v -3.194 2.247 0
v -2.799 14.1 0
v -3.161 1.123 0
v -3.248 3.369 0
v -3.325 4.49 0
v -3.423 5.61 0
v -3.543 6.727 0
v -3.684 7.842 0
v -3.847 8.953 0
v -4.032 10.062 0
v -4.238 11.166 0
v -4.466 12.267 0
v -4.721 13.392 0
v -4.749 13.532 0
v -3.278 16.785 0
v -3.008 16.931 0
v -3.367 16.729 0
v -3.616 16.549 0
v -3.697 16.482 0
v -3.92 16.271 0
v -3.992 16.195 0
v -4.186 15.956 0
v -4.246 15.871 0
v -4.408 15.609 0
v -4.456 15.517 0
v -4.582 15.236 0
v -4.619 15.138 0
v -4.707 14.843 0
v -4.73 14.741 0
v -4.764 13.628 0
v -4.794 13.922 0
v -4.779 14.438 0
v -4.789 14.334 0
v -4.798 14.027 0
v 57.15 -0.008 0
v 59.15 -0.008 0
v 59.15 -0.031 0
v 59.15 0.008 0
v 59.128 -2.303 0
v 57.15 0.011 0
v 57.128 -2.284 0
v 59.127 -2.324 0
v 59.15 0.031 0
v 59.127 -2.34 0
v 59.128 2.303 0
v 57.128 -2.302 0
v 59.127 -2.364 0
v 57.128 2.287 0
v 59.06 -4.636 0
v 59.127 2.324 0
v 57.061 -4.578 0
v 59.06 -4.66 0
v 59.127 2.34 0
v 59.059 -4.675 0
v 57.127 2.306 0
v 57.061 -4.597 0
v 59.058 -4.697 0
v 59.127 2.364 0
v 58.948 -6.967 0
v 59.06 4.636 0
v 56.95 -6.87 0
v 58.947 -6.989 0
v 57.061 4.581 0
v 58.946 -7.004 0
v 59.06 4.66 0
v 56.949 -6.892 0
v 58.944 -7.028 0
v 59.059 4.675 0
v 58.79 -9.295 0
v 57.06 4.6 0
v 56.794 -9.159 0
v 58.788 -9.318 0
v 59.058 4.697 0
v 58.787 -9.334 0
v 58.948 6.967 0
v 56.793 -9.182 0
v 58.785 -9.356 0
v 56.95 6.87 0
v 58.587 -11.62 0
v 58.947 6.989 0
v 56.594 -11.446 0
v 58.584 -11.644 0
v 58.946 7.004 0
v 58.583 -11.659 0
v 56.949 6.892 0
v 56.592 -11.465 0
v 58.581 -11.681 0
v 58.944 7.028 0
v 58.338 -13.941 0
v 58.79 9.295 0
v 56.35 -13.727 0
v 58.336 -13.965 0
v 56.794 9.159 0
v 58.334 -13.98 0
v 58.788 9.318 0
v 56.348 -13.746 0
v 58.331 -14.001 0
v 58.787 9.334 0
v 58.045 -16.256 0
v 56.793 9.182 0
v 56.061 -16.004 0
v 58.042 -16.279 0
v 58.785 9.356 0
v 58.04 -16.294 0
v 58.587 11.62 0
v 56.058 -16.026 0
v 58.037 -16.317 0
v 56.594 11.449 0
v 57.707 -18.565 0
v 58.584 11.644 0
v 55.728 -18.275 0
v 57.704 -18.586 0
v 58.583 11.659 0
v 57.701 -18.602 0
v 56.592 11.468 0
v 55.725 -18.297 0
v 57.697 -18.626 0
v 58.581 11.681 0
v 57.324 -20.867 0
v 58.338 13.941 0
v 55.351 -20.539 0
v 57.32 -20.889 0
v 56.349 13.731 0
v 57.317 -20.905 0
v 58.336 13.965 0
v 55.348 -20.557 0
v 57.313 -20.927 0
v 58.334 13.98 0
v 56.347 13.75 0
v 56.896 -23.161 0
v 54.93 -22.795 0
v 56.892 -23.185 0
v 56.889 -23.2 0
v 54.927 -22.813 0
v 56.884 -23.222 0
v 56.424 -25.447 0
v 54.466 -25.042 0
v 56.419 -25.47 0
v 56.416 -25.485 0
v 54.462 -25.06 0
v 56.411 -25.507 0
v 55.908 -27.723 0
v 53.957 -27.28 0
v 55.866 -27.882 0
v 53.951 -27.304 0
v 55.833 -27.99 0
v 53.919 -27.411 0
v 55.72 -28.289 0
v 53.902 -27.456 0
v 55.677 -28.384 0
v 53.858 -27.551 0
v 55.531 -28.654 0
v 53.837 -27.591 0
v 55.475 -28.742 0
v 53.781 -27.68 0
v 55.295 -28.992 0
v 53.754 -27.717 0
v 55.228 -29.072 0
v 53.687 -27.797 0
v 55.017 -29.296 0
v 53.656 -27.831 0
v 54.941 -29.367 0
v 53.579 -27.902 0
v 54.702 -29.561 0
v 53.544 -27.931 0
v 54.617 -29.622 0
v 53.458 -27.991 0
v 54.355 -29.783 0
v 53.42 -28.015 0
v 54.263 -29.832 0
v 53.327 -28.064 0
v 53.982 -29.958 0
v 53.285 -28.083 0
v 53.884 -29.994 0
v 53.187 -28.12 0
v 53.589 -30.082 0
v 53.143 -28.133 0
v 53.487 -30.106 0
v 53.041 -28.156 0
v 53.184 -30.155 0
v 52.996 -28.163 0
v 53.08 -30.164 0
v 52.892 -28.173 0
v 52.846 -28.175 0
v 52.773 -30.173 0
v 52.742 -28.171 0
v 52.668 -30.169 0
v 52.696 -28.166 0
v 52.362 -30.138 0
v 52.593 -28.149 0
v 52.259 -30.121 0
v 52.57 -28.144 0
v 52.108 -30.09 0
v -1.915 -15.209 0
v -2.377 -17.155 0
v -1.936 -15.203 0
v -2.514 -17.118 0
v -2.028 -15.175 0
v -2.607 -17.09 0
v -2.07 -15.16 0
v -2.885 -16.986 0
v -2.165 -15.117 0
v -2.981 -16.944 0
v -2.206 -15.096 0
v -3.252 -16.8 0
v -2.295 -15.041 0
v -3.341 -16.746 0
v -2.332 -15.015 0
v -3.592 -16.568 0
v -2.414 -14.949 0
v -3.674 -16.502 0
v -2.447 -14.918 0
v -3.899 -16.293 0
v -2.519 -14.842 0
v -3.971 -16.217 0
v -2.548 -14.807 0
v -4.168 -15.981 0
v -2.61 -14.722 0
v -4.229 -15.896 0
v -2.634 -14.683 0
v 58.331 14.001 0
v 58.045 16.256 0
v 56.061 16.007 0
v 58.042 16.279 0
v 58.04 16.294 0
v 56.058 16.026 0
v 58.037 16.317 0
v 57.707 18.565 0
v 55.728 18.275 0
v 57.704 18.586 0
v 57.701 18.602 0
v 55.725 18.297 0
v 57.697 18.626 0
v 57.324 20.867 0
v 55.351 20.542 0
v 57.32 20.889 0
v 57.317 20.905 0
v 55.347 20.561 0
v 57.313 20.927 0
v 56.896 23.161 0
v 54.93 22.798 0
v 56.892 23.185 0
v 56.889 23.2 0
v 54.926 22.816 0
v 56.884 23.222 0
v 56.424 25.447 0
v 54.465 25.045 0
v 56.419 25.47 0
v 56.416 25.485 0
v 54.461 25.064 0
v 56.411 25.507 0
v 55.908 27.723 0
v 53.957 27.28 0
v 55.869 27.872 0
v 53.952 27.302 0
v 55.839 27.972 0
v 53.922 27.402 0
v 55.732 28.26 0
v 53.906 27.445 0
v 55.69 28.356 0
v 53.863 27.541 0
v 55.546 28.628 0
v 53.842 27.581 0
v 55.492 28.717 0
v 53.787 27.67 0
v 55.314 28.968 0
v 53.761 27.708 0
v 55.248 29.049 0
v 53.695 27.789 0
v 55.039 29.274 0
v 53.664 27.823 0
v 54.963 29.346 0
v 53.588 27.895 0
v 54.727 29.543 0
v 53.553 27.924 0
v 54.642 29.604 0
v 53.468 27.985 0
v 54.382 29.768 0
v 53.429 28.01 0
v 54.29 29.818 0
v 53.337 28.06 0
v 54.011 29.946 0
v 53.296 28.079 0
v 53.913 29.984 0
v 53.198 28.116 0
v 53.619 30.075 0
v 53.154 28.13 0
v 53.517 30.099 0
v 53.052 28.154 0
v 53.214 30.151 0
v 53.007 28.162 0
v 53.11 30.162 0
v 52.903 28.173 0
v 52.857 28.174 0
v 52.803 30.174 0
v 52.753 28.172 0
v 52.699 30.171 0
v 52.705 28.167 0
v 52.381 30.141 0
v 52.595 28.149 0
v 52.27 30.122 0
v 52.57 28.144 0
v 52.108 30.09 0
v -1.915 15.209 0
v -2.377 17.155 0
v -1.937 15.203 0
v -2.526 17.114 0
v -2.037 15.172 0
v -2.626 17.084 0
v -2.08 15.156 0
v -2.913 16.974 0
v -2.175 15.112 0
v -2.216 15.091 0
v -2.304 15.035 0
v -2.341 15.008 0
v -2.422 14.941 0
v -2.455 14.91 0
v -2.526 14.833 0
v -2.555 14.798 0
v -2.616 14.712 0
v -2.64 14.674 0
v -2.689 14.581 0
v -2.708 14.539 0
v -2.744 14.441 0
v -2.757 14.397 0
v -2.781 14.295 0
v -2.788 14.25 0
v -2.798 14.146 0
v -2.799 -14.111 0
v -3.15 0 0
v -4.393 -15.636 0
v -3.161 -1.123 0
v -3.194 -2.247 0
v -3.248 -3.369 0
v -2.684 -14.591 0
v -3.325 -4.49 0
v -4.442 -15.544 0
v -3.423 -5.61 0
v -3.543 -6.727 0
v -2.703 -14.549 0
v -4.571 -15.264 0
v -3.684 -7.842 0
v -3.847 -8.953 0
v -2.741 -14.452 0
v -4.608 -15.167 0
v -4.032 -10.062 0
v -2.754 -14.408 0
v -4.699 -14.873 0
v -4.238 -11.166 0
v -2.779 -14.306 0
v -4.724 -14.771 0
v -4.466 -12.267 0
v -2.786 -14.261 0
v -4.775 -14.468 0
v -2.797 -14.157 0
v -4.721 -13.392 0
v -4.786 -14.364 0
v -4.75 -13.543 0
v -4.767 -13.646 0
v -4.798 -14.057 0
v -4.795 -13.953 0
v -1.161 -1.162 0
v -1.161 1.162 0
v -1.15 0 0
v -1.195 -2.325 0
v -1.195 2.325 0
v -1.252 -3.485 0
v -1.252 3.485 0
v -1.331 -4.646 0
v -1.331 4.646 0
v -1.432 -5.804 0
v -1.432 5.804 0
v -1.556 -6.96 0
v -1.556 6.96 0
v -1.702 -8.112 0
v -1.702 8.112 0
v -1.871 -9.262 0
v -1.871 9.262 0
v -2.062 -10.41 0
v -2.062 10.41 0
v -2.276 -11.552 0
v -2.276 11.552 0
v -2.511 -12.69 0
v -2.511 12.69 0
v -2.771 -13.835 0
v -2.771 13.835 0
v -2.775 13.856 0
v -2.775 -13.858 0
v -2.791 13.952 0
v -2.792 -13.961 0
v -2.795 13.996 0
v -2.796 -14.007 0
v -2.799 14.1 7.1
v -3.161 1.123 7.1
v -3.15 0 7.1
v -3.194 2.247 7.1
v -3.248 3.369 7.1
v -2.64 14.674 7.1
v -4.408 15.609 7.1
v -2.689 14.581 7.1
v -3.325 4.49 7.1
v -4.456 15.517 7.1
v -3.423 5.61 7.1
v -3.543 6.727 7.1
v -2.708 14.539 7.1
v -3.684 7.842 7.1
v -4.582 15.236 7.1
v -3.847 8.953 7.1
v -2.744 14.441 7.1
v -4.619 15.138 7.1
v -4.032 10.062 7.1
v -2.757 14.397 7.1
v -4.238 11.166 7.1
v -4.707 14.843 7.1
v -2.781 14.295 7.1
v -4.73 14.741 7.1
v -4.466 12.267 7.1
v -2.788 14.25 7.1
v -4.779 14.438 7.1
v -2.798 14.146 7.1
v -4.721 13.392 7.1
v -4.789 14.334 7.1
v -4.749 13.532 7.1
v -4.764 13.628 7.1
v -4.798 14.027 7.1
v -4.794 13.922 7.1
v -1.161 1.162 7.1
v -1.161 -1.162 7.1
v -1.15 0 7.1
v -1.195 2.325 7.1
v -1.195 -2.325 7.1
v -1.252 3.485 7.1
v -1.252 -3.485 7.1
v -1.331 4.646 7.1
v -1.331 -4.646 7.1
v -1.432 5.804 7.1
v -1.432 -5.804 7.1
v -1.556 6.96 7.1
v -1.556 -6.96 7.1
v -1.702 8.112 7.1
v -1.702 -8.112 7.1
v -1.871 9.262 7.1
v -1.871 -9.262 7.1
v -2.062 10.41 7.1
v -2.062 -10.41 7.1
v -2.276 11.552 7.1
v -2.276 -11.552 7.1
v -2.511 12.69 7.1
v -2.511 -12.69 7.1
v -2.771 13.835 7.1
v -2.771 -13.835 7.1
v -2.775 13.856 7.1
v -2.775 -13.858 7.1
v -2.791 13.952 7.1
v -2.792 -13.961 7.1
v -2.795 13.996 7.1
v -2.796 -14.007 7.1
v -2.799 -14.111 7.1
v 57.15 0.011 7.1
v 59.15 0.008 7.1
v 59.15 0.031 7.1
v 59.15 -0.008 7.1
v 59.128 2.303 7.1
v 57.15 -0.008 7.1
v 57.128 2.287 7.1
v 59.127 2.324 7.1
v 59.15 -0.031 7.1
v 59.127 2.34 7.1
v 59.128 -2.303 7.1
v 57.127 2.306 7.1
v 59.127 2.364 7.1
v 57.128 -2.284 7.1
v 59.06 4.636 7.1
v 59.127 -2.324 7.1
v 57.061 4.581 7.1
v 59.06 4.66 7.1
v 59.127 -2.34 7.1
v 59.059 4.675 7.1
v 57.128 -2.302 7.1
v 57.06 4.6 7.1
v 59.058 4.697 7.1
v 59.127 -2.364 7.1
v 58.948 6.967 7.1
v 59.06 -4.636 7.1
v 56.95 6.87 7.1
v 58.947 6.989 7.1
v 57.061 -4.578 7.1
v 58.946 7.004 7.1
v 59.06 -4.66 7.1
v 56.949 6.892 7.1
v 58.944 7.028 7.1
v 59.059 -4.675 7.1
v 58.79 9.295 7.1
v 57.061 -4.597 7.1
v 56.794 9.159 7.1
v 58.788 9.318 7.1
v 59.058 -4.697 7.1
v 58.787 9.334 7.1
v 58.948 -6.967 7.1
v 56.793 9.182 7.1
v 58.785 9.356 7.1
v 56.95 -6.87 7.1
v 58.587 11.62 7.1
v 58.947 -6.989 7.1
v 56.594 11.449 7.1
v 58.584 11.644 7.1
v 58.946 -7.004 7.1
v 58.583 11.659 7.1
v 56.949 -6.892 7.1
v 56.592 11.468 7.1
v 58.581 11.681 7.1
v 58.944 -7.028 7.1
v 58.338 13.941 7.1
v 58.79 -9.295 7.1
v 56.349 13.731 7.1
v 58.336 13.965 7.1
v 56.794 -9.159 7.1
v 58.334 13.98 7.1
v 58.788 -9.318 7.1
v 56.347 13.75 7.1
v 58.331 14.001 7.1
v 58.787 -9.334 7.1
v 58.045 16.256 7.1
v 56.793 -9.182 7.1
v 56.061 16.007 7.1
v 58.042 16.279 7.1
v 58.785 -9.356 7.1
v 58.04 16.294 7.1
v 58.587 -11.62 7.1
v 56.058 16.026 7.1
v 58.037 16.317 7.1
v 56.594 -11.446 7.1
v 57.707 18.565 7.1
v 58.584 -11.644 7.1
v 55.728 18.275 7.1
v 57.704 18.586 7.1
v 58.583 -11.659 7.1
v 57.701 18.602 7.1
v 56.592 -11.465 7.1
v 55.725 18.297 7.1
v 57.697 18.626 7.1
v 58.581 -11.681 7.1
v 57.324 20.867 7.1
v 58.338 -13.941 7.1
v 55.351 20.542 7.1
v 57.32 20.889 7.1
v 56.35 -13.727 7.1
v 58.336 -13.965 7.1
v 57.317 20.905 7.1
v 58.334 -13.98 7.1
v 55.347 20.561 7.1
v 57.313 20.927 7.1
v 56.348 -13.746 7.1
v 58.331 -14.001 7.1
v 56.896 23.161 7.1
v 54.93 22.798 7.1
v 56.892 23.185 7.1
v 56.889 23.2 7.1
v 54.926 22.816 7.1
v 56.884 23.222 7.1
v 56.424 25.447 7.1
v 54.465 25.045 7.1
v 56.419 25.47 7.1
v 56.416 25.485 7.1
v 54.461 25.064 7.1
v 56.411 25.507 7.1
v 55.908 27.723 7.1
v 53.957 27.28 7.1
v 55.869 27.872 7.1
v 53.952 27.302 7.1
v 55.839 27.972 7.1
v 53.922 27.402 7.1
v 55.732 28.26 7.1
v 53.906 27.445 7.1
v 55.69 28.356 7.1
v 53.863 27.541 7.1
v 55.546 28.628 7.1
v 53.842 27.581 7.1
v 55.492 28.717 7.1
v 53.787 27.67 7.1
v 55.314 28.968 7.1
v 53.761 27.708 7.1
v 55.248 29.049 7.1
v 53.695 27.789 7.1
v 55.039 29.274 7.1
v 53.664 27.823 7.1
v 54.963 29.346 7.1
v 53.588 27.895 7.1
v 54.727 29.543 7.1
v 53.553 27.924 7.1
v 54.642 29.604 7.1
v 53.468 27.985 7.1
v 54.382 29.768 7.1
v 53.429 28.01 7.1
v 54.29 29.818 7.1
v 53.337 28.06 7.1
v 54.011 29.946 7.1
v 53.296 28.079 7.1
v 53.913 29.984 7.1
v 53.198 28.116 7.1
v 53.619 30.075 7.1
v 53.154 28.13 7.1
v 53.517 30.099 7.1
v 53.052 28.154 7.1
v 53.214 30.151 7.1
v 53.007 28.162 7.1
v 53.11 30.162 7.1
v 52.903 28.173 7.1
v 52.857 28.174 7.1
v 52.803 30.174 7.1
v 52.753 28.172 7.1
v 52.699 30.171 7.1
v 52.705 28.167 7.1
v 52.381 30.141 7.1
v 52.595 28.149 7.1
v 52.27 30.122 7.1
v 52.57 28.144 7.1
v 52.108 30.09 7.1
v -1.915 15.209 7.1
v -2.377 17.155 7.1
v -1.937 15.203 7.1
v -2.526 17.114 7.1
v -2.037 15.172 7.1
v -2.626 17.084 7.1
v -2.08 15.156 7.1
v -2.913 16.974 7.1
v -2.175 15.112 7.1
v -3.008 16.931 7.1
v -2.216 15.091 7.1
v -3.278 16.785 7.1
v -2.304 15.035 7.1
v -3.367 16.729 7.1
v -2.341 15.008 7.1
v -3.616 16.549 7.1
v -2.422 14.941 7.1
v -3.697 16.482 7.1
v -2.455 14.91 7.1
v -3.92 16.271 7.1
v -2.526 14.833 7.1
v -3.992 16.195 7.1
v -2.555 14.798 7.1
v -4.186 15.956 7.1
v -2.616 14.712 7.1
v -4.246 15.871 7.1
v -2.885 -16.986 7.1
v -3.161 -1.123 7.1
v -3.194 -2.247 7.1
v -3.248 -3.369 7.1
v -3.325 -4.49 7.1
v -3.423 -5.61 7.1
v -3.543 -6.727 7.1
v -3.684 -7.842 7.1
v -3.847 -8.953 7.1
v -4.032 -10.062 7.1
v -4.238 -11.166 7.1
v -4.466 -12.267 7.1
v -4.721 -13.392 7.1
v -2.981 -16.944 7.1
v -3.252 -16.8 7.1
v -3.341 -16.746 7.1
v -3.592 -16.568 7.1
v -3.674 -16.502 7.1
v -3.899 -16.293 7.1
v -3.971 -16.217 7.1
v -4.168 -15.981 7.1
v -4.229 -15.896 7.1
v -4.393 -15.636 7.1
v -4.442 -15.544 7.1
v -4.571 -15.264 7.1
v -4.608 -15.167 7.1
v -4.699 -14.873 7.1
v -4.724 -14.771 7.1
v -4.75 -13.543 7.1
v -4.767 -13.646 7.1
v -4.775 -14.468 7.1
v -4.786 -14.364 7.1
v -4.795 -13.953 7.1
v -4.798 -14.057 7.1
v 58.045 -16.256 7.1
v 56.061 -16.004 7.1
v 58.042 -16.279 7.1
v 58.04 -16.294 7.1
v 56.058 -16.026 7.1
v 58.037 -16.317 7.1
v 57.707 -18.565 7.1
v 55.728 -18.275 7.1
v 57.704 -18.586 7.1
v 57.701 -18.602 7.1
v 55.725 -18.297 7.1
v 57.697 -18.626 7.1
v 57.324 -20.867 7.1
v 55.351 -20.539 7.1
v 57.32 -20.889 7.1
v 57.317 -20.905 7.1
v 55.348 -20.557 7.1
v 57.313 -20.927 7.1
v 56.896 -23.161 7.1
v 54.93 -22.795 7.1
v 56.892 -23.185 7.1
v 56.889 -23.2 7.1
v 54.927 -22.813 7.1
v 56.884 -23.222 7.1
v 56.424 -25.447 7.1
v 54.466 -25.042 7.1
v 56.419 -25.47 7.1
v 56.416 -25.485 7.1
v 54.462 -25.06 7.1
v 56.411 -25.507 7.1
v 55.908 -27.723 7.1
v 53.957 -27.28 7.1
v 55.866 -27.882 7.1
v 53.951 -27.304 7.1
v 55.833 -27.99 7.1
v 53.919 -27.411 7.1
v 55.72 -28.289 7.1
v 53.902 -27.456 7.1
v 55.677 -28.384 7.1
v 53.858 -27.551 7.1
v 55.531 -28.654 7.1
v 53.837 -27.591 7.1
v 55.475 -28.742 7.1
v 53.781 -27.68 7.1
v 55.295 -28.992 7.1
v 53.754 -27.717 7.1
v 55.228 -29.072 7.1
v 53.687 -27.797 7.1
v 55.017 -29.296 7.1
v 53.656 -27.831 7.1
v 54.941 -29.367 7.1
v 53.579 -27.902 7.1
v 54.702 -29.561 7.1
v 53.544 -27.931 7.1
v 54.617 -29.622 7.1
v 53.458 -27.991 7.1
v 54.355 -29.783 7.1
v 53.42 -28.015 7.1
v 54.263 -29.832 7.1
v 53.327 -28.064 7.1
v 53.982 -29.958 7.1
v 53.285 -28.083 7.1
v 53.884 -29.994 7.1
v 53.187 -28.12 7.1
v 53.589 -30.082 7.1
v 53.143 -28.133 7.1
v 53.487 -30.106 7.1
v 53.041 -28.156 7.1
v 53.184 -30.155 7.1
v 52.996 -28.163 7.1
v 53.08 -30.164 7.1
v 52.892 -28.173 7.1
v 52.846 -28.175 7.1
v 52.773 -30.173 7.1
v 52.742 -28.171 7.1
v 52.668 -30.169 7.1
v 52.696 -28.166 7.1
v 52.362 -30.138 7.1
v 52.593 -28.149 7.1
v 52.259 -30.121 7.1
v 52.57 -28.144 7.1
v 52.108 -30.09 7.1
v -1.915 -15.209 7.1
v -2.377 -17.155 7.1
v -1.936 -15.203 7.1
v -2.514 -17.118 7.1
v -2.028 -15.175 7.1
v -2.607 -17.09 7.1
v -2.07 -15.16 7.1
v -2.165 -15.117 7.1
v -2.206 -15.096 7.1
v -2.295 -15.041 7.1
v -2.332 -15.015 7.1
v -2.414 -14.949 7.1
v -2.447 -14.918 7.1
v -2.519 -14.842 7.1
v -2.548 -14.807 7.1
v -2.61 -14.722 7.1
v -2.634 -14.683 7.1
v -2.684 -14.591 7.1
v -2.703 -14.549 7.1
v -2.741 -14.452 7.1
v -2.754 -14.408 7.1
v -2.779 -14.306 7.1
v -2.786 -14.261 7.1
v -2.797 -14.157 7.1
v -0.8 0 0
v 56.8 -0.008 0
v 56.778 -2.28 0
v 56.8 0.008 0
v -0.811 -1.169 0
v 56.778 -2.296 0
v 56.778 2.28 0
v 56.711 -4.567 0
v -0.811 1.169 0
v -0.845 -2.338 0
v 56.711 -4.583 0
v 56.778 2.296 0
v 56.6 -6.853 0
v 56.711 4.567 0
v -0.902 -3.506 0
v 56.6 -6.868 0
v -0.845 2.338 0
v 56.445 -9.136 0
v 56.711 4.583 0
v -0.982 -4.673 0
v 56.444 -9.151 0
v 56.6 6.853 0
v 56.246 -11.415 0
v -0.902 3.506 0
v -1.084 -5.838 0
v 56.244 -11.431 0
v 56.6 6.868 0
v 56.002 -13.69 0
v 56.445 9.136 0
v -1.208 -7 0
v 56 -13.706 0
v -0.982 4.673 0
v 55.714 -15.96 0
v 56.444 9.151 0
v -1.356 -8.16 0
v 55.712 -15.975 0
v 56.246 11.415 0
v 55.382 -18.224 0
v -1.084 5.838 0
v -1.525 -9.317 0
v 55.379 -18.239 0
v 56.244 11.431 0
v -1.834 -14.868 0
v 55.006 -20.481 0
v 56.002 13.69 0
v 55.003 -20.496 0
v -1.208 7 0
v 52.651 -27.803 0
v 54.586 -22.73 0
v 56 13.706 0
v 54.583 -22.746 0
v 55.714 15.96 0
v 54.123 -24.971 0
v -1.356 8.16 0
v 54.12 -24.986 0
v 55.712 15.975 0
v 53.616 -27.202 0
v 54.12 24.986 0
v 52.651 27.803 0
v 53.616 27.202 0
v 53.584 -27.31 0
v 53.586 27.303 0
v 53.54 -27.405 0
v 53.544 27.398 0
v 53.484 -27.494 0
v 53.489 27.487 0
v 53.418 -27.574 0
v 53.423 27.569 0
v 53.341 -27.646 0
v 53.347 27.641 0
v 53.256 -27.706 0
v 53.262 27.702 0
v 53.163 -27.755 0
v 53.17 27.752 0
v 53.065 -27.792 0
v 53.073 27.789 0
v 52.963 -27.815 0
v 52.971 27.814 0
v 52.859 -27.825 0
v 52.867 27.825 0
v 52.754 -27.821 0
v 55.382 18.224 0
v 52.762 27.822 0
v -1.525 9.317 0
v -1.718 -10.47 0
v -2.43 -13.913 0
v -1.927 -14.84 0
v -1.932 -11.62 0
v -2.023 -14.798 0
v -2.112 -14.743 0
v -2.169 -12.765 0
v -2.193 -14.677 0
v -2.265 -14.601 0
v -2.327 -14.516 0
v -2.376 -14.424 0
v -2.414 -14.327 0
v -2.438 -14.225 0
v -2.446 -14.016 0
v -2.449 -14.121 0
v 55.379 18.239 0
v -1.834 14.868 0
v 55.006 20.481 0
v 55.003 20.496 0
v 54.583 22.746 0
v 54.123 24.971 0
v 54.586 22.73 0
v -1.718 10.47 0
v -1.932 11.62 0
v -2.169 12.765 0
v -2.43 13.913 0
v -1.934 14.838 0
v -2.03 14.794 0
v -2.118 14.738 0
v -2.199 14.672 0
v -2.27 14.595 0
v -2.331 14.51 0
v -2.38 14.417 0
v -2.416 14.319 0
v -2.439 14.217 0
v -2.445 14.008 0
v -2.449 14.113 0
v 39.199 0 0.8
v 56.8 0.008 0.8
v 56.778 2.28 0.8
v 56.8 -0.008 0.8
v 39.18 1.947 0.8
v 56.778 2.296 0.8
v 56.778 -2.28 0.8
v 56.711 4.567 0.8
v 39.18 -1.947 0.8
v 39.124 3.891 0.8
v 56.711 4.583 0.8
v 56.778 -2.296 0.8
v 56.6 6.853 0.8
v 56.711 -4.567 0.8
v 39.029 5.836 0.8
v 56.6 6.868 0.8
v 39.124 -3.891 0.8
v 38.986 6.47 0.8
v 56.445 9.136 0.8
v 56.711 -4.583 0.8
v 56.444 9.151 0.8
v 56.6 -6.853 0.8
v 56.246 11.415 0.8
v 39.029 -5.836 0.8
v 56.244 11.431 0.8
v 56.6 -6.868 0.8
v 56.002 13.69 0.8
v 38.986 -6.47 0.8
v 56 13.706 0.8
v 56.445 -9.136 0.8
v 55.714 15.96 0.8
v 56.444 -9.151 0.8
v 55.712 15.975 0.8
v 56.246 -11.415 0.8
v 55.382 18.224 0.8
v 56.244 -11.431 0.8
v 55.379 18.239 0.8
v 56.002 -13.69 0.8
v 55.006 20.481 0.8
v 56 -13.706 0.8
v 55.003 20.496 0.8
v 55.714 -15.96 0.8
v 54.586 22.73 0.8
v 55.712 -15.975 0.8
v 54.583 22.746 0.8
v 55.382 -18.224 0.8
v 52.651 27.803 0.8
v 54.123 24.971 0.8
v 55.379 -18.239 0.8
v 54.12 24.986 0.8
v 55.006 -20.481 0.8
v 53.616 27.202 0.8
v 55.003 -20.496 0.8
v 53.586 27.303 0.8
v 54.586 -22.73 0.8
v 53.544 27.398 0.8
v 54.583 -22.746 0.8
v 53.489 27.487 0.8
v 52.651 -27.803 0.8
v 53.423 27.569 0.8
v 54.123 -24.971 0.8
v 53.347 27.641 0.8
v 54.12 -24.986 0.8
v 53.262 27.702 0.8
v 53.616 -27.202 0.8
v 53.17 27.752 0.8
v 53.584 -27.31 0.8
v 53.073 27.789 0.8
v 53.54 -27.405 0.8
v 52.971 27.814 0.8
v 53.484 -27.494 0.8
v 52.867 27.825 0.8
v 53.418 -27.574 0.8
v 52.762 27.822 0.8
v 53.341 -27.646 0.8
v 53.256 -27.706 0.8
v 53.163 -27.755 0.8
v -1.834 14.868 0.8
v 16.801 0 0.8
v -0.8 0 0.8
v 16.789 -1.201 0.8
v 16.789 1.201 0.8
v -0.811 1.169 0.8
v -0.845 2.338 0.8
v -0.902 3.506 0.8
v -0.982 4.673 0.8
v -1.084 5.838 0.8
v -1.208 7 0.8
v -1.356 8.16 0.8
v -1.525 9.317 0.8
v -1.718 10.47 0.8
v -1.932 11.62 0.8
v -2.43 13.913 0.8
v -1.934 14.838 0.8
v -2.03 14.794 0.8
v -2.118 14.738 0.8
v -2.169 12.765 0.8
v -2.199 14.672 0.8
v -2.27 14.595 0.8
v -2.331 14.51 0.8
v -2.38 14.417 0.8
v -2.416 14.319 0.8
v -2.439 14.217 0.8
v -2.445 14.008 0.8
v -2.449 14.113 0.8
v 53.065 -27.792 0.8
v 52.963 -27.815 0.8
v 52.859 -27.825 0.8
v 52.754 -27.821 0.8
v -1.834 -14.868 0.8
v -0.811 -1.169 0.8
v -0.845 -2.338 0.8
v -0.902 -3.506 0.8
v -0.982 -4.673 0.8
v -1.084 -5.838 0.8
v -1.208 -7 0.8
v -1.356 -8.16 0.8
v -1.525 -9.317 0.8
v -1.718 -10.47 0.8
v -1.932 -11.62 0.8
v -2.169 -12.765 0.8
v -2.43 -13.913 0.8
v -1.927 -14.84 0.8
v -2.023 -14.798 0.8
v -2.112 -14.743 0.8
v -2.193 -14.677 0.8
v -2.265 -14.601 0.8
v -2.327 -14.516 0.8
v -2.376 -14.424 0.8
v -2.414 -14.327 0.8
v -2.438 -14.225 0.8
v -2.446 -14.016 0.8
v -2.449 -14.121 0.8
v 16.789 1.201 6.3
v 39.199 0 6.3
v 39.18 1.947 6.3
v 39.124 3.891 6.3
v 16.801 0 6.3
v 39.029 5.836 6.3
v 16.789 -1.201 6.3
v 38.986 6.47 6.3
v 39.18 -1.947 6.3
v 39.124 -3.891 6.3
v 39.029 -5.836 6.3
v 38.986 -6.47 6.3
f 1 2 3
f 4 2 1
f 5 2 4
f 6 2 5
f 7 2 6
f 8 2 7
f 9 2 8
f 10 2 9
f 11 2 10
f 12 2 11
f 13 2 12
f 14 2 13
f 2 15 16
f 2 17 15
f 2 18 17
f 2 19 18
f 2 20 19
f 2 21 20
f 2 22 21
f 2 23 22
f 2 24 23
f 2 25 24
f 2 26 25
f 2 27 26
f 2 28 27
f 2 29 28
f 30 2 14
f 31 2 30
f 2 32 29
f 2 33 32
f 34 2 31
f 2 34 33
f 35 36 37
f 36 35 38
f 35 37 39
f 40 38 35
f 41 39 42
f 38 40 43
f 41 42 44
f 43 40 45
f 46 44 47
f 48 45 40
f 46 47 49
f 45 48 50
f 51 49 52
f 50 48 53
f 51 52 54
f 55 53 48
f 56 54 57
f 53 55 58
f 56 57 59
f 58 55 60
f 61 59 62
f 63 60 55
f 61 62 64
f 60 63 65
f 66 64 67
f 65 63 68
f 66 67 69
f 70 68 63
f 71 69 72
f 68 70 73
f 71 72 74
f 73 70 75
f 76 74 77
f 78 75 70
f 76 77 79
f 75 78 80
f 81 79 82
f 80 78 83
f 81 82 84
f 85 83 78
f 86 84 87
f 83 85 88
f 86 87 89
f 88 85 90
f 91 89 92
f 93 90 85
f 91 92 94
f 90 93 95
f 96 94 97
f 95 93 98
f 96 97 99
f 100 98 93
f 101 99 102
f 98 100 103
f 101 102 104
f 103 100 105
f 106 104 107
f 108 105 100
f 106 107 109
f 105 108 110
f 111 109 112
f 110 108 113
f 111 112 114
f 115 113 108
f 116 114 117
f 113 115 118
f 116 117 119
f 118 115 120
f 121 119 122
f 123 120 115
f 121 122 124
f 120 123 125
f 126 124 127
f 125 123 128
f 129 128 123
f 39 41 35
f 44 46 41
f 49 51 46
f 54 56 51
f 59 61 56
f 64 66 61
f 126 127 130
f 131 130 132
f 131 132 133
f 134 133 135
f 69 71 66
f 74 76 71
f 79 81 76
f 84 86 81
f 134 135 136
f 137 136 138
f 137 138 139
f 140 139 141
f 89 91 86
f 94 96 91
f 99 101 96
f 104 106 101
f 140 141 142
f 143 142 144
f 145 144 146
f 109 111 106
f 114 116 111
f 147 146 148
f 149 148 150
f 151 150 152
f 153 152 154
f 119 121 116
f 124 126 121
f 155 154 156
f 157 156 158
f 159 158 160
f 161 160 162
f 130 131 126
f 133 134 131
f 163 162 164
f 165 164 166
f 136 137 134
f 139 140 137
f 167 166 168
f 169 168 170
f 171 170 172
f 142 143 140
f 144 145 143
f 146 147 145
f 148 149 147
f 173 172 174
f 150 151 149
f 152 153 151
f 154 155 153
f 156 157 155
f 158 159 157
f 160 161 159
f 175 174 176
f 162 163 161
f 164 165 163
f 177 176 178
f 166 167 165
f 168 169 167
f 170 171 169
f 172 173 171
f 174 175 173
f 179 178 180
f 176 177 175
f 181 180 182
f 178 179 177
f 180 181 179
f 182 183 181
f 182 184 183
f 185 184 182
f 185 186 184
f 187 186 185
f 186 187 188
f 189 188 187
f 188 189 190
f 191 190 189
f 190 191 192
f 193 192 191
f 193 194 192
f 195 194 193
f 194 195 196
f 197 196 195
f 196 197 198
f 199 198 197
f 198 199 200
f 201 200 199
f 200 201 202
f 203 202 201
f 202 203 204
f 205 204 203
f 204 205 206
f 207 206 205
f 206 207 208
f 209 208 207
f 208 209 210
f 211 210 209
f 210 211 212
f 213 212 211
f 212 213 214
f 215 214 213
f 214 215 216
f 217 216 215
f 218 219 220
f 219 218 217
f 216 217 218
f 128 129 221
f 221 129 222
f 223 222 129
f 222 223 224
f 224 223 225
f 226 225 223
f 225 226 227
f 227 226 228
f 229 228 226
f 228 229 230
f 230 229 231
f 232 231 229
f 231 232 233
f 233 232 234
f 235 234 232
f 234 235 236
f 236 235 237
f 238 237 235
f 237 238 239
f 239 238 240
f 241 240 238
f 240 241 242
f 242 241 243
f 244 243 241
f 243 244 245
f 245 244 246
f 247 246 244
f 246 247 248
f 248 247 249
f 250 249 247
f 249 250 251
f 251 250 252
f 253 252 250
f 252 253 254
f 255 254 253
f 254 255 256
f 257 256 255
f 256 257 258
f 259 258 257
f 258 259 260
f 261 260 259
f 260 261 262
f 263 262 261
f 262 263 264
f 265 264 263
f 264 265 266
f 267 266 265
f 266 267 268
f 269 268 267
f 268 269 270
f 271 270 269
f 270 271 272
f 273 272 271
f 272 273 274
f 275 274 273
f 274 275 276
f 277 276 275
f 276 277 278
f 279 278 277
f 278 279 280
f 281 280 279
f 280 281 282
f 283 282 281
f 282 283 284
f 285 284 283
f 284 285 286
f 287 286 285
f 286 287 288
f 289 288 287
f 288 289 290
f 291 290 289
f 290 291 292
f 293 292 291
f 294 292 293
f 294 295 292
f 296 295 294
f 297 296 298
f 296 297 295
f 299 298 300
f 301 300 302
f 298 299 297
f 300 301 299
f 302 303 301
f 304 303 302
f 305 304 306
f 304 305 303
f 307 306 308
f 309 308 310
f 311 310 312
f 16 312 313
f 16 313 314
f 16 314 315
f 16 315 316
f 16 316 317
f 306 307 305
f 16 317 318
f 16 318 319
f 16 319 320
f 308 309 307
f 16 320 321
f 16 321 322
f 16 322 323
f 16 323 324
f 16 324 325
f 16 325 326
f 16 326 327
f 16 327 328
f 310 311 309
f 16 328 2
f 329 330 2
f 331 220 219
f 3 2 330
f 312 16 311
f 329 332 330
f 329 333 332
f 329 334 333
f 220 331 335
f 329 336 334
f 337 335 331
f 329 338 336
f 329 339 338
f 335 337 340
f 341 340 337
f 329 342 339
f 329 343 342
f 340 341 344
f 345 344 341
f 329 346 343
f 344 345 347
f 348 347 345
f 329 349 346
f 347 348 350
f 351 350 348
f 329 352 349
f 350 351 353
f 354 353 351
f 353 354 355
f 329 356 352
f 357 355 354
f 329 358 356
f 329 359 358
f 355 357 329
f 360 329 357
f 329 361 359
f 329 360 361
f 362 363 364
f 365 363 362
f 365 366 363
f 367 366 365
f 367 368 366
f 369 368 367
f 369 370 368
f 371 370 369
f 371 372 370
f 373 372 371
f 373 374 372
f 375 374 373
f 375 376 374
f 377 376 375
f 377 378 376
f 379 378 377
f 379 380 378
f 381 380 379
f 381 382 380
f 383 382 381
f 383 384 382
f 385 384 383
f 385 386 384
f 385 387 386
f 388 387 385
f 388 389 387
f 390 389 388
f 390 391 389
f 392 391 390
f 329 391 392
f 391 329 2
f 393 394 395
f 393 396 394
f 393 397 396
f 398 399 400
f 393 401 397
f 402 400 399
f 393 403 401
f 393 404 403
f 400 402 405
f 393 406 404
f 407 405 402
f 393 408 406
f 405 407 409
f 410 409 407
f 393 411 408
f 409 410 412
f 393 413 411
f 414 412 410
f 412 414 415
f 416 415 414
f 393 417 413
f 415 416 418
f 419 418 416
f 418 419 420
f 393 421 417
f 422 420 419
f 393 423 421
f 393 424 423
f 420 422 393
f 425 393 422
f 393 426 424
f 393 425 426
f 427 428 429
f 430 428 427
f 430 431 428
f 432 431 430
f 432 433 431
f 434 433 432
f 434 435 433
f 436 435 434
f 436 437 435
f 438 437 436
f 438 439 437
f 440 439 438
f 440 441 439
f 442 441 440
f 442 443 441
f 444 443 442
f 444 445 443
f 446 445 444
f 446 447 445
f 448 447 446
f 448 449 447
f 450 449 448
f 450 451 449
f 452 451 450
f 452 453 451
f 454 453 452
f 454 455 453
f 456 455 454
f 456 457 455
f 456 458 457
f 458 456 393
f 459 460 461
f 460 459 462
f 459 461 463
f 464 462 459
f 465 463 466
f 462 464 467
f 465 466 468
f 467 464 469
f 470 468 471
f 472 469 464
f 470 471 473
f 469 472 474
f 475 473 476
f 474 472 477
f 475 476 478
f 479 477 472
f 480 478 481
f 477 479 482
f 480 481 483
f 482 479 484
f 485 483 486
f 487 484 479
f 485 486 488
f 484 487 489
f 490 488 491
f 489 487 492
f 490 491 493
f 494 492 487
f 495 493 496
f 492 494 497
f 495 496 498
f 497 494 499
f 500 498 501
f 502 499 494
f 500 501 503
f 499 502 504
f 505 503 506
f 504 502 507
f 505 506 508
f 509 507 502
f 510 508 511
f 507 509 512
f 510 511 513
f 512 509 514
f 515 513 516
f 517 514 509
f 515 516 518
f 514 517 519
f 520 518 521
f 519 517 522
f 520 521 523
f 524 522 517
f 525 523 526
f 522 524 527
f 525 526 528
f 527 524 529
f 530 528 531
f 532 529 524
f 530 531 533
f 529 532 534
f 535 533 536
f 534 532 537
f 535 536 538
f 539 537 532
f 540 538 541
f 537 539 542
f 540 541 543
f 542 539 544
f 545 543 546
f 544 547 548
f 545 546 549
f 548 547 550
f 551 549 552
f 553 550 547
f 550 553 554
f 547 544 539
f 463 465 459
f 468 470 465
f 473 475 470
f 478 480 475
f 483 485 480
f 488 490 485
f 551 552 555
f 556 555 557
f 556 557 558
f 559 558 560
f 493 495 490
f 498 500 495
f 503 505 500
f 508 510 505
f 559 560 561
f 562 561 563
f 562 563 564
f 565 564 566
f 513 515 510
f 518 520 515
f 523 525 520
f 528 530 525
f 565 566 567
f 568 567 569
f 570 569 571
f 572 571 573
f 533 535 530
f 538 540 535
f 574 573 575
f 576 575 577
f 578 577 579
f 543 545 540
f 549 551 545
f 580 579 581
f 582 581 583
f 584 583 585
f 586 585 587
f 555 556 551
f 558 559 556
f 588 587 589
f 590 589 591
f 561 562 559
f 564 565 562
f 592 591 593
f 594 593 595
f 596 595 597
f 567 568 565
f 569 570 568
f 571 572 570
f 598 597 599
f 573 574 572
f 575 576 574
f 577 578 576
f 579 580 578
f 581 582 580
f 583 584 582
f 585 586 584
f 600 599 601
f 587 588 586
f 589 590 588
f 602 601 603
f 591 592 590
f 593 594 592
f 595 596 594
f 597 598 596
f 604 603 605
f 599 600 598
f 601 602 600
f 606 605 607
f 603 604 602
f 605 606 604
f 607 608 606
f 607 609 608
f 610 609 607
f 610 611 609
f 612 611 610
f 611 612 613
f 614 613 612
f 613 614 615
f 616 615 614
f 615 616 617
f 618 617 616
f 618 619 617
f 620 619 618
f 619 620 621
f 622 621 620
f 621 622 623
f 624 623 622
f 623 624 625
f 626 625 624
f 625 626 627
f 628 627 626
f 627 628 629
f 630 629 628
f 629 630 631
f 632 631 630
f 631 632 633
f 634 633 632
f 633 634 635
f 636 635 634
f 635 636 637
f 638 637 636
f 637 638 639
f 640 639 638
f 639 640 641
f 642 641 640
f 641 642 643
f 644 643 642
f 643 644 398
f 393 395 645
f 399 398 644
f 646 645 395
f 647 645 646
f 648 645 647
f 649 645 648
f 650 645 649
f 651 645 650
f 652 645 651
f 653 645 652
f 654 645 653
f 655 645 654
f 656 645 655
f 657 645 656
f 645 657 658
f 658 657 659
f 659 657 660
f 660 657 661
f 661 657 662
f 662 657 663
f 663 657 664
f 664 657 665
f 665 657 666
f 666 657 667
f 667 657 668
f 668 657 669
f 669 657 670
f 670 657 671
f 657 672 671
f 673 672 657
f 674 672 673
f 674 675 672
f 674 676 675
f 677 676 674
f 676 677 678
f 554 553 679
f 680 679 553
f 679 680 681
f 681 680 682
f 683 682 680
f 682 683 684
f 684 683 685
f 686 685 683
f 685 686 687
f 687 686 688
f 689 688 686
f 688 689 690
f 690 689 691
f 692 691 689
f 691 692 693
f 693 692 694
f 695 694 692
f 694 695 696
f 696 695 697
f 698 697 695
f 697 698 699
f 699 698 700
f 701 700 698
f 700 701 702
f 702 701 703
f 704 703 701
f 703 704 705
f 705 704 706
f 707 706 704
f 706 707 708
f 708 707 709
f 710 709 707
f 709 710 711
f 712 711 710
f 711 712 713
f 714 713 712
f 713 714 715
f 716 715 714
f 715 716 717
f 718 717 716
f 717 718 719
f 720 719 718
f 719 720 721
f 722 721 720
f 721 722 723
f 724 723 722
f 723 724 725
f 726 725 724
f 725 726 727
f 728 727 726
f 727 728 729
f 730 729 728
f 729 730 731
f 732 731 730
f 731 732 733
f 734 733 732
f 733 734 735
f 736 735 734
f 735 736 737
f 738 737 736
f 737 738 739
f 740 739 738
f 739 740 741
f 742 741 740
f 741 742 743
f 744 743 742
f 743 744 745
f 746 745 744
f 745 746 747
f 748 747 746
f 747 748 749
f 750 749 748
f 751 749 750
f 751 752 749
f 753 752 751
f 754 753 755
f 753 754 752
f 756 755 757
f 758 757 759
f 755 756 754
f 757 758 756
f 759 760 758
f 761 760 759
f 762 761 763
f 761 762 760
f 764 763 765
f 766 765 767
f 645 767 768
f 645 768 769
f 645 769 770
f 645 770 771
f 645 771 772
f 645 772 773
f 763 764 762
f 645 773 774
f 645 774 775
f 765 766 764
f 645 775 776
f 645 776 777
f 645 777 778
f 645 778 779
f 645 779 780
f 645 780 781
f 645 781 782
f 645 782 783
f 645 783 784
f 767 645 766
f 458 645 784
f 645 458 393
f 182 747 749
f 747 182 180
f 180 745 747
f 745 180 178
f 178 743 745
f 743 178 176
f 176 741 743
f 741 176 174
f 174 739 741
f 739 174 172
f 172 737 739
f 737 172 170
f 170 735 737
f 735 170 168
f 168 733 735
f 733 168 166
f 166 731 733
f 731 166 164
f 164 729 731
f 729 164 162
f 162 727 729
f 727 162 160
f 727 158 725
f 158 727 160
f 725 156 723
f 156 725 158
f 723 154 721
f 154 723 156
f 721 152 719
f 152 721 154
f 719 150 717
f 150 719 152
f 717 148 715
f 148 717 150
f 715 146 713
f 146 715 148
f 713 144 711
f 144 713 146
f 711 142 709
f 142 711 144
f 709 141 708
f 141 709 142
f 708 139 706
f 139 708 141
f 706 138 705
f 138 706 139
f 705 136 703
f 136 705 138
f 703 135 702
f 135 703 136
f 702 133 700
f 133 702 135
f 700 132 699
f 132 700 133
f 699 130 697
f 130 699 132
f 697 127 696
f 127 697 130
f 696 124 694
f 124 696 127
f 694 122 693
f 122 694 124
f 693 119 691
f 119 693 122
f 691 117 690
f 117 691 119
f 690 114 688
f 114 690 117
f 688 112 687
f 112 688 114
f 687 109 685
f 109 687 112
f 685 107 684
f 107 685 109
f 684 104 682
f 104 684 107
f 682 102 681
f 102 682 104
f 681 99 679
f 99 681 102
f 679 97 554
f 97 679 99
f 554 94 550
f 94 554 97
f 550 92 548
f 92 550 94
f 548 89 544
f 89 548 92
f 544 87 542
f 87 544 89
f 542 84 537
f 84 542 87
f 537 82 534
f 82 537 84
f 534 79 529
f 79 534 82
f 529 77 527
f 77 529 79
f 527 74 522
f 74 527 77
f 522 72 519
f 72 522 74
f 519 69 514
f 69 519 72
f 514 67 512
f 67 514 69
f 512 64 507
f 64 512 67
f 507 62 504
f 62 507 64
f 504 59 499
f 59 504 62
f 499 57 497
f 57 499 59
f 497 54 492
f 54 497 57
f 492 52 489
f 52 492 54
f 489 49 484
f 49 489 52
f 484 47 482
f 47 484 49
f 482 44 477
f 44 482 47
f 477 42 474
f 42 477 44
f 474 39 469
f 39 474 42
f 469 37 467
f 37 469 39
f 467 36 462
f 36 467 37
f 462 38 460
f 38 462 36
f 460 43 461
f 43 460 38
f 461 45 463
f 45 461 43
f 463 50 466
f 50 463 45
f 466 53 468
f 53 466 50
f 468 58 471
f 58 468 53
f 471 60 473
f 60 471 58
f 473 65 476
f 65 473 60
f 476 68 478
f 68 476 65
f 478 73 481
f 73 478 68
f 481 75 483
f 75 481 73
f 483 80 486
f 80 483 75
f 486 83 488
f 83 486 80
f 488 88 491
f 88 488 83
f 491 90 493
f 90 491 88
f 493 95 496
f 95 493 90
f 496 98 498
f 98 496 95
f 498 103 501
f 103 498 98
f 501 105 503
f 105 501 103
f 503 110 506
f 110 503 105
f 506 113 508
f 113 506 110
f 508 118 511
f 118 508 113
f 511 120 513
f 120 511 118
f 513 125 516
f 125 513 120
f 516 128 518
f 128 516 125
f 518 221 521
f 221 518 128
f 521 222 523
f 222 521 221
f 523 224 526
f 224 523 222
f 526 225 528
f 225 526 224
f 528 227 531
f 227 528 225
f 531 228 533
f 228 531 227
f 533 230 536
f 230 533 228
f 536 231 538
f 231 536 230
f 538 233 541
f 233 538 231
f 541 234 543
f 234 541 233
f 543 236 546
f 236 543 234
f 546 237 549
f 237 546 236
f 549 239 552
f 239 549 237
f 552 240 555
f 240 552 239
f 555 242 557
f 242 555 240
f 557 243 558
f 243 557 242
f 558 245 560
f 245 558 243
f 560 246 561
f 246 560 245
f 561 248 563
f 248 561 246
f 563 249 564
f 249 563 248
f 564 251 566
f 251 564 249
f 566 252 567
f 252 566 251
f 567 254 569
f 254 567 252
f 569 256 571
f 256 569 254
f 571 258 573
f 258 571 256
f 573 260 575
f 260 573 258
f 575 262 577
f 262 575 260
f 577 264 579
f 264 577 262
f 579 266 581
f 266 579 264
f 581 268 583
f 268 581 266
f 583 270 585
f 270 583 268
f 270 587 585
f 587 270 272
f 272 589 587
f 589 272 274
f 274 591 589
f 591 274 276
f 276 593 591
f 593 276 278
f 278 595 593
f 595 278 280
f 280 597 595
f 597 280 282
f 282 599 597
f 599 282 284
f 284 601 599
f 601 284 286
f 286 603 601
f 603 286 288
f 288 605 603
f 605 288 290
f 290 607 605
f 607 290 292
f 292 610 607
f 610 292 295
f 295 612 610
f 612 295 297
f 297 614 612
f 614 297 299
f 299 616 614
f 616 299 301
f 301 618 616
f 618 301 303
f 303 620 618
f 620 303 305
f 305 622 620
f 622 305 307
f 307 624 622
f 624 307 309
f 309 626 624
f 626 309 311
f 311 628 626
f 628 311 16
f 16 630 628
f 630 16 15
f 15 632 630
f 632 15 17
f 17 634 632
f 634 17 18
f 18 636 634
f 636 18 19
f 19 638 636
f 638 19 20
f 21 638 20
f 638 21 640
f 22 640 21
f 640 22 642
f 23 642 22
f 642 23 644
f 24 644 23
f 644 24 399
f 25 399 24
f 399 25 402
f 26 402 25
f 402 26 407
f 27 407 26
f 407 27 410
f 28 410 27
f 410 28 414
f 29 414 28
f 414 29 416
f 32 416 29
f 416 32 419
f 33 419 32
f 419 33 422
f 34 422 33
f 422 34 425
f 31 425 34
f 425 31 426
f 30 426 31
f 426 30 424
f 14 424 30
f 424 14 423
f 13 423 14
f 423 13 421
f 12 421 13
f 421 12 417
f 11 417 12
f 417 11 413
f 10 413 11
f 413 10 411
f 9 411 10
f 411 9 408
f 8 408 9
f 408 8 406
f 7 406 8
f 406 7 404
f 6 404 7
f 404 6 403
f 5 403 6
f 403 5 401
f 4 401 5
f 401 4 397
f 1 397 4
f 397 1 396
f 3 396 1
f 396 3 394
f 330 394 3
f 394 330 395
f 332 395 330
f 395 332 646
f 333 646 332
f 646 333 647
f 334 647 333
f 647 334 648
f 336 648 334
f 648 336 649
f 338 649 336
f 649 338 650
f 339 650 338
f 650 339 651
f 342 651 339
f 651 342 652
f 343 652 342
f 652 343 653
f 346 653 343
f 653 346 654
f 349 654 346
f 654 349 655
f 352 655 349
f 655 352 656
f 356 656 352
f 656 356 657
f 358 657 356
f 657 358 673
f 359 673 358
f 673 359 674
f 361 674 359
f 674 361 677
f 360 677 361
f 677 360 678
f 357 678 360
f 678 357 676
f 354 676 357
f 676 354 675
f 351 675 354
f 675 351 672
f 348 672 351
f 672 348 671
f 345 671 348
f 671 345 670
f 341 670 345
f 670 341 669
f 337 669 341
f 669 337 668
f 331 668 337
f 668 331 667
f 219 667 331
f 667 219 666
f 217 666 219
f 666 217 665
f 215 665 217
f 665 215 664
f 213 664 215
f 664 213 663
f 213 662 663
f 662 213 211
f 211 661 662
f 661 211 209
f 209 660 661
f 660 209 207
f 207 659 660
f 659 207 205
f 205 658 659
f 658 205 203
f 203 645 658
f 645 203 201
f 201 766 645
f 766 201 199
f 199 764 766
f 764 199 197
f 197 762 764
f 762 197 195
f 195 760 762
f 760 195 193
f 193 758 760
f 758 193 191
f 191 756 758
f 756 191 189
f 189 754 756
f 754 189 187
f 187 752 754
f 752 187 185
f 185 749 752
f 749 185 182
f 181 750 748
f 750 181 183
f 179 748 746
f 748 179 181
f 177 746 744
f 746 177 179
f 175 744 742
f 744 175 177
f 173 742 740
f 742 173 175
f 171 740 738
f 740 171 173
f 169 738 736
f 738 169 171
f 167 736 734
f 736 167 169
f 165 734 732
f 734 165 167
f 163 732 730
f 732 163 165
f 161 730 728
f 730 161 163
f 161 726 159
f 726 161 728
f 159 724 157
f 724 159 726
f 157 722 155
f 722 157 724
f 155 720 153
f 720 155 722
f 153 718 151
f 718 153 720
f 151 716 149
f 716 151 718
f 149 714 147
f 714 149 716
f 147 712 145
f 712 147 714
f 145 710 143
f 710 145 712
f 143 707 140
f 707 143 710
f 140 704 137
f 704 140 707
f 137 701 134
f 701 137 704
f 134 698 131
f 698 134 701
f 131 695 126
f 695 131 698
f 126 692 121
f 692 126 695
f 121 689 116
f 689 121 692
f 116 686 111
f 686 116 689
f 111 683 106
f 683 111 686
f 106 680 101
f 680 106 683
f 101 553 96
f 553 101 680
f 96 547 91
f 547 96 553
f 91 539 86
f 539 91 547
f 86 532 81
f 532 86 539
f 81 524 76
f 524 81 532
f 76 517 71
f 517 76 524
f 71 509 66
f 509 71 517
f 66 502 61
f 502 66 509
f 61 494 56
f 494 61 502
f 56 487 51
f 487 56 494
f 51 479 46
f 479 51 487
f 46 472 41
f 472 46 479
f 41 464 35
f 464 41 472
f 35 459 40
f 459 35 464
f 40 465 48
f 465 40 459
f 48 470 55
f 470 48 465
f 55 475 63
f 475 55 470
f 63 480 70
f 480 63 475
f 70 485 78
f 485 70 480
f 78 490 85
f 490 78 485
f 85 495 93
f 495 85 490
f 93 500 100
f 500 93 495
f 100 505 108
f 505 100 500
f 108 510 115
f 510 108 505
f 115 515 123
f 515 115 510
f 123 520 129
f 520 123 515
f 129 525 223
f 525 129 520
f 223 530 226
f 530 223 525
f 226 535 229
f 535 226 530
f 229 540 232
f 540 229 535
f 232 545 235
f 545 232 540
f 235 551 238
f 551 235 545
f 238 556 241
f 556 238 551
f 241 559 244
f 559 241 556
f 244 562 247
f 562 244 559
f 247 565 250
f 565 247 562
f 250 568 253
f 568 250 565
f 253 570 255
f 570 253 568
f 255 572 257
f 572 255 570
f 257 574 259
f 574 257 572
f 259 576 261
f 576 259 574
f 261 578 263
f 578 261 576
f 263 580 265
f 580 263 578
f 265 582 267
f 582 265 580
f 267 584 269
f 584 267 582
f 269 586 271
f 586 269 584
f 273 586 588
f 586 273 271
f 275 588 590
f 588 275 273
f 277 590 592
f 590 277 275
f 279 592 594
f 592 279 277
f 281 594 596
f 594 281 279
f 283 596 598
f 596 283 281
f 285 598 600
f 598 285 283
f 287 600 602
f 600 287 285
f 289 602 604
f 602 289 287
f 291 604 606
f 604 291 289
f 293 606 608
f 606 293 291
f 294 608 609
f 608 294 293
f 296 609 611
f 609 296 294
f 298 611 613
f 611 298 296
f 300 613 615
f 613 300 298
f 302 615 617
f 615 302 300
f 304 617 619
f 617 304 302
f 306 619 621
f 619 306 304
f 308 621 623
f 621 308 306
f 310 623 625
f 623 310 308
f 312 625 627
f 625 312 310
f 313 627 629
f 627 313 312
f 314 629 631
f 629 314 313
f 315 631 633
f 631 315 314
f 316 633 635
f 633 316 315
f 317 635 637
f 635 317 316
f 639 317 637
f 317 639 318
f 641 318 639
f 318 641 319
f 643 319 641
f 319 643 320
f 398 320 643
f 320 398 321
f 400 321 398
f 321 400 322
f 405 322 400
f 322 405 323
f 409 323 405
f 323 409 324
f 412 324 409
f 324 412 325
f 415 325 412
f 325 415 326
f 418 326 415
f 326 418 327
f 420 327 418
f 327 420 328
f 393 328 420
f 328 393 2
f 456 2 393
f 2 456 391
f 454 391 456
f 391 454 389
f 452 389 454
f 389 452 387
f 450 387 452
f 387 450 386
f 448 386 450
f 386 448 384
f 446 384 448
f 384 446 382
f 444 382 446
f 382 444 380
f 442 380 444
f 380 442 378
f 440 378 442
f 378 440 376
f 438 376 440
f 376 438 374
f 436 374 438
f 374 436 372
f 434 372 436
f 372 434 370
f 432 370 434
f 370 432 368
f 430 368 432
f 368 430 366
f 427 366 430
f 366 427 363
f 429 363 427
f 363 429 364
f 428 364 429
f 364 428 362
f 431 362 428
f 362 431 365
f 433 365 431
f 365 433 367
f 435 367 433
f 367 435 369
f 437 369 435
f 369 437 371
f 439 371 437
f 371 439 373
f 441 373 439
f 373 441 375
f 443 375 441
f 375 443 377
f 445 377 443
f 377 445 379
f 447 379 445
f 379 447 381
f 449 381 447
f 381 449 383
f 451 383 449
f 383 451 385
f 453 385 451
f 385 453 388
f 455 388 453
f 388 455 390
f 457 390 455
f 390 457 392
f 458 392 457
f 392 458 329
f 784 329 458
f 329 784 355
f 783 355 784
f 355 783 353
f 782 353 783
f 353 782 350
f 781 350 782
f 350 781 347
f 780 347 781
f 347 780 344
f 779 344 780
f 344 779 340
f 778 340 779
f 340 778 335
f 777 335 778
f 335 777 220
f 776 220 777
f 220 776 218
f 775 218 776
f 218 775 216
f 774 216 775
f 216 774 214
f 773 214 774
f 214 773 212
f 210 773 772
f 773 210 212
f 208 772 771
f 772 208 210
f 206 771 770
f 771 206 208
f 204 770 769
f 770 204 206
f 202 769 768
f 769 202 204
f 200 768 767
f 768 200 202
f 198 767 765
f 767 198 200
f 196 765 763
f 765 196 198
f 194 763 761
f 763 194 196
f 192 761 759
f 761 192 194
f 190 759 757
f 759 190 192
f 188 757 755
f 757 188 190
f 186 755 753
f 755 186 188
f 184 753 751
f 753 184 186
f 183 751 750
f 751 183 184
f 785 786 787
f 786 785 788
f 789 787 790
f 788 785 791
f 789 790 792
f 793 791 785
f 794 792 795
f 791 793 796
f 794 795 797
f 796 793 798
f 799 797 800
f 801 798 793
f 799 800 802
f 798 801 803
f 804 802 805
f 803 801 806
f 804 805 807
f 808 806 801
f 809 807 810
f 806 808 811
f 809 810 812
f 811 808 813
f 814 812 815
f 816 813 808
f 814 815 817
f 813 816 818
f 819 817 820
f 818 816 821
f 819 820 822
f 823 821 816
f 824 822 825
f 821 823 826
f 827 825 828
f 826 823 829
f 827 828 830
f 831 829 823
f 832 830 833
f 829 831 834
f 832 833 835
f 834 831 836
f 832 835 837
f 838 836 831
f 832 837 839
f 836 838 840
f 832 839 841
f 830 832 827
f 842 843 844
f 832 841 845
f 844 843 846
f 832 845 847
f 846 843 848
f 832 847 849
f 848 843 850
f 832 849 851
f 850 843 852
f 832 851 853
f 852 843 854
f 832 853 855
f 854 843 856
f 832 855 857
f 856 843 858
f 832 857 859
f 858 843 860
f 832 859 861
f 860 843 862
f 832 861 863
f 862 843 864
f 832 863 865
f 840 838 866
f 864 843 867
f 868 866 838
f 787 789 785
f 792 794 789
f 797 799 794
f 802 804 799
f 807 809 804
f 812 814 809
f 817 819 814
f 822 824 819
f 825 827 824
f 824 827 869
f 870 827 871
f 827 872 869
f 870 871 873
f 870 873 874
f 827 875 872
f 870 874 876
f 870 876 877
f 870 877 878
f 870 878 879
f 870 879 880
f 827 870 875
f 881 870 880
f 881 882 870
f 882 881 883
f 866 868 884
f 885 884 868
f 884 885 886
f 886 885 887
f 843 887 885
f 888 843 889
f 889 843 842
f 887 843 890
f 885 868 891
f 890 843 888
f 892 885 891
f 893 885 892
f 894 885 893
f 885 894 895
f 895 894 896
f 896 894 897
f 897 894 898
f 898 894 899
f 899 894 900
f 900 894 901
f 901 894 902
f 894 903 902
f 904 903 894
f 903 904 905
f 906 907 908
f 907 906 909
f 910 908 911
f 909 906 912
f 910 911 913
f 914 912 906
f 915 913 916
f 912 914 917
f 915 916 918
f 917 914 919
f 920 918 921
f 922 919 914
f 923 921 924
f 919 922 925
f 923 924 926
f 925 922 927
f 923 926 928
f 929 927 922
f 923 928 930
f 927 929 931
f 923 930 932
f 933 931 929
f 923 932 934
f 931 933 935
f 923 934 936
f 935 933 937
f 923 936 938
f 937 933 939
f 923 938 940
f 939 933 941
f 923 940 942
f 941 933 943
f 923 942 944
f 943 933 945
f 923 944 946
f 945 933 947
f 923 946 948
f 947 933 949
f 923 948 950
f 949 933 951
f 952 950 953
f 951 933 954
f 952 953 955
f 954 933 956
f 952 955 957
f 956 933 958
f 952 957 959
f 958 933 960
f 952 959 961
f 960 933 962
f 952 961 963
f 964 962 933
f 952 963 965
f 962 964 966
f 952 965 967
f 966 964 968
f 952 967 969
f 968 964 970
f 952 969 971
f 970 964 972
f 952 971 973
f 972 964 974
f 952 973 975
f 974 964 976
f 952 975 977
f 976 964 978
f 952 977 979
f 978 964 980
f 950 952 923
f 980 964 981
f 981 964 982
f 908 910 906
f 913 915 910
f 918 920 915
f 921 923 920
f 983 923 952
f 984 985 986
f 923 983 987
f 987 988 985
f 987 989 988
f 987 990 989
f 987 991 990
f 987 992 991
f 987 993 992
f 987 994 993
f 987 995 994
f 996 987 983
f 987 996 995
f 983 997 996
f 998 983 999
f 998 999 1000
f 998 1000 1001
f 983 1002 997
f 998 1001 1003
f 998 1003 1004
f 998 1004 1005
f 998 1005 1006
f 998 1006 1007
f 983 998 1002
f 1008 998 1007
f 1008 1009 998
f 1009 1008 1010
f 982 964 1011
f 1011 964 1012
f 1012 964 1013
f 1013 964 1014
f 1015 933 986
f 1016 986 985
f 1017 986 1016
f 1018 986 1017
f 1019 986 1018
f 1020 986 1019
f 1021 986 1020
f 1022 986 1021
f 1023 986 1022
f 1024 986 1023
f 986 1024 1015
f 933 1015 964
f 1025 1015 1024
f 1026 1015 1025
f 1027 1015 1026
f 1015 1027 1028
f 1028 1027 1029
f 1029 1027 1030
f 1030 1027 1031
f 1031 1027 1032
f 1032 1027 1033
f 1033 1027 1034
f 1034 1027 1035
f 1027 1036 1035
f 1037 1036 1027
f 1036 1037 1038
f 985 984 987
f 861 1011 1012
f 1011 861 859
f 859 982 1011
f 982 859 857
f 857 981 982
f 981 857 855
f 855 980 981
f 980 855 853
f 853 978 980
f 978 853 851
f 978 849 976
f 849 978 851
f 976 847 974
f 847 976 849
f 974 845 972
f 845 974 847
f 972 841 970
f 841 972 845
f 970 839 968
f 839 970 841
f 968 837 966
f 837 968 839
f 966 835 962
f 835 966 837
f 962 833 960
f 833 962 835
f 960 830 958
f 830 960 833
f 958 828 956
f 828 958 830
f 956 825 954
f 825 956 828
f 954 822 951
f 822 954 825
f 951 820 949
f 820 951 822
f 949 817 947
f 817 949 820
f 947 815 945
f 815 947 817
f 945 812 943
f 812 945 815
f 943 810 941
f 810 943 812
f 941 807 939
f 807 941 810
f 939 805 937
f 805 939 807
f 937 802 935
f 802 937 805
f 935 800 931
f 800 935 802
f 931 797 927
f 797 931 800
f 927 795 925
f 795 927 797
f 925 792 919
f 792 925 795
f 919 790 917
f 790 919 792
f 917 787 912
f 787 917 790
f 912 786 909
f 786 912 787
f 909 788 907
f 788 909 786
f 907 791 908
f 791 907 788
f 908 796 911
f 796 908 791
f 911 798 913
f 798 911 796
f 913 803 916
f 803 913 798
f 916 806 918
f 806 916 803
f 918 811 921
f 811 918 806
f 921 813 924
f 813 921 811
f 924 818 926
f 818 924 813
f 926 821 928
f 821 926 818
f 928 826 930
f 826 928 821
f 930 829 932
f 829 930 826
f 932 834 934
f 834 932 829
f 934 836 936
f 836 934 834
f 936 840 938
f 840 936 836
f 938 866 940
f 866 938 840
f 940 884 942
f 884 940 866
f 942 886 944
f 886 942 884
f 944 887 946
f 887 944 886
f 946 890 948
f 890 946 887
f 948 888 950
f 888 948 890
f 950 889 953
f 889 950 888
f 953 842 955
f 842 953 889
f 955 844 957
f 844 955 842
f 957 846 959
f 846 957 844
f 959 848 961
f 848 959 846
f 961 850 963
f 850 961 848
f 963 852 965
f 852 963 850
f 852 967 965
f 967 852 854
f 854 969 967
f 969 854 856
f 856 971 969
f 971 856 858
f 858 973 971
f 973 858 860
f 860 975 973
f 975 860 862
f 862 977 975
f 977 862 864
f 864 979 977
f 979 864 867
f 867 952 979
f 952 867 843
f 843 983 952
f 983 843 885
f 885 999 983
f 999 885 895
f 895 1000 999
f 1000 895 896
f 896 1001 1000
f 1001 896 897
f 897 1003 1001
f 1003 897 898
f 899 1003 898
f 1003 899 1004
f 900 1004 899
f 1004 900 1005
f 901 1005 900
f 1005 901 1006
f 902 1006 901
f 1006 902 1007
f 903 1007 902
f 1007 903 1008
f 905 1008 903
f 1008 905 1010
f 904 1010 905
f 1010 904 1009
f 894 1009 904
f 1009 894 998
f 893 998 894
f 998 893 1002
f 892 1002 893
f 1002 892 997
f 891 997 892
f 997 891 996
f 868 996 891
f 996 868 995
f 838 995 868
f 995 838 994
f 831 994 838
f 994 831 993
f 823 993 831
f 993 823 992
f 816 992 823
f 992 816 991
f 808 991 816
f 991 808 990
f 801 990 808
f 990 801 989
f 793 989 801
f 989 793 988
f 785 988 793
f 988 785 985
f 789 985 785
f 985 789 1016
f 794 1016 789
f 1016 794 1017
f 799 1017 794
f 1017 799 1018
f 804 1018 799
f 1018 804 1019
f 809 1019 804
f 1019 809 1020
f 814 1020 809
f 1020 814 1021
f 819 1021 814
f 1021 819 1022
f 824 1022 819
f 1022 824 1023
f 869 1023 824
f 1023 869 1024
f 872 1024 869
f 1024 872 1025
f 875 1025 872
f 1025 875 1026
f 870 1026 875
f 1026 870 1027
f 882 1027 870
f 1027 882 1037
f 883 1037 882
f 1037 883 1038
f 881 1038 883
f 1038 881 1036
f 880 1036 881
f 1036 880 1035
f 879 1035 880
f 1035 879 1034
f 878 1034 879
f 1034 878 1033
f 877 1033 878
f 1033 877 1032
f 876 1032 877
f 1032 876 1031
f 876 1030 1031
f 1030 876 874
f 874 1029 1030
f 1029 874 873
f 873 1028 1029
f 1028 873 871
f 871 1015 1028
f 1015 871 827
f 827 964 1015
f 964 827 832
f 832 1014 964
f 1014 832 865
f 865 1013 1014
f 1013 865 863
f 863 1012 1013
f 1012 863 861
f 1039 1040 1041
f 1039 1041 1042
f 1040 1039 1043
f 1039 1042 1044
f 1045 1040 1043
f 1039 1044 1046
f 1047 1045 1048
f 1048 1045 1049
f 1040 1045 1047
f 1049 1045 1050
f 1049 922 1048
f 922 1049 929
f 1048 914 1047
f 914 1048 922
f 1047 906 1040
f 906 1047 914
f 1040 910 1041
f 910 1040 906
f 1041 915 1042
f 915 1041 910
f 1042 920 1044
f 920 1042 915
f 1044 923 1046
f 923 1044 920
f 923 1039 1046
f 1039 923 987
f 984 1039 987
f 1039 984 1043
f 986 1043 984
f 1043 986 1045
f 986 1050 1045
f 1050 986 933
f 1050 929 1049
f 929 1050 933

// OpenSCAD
// Gen-DA — fit coupon (bay part): O20/O5 THROUGH pockets at carrier thickness (test on a steel offcut), 608 seat,
// D-flat bore, gap shim, and one bobbin-bay slice (bobbin footprint + bay_clear) to test former fit.
include <parameters.scad>;
$fn = 48;
// D-flat keyed bore: flat faces +X (angle 0 = magnet pocket 0 = index notch)
module dflat_bore(h) {
    intersection() {
        cylinder(d=shaft_bore, h=h);
        translate([-shaft_bore, -shaft_bore, 0]) cube([shaft_bore + dflat_x, 2*shaft_bore, h]);
    }
}
module sector_2d(r_in, r_out, ang) {
    polygon([
        for (a = [-ang/2 : ang/24 : ang/2]) [r_in*cos(a), r_in*sin(a)],
        for (a = [ang/2 : -ang/24 : -ang/2]) [r_out*cos(a), r_out*sin(a)]
    ]);
}
module footprint_2d() { offset(r=wall) sector_2d(coil_id_r, coil_od_r, span_deg); }
module hub_2d()       { offset(delta=-coil_core_inset) sector_2d(coil_id_r, coil_od_r, span_deg); }

// bay slice at FULL stator thickness with one bobbin BASE printed IN PLACE inside it (bay_clear gap): this is the
// print-in-place test for the one-plate stator. After printing, the base must pop out with finger pressure; if it is fused,
// print coil_former.stl separately (print-packs/parts/) instead of using the in-place bases.
translate([-coil_id_r, 0, 0]) {
    difference() {
        linear_extrude(stator_thick) offset(r=bay_clear + 2) footprint_2d();
        translate([0, 0, -0.1]) linear_extrude(stator_thick + 0.2) offset(r=bay_clear) footprint_2d();
    }
    union() {
        linear_extrude(flange_t) footprint_2d();
        translate([0, 0, flange_t - 0.01]) linear_extrude(former_web + 0.01) hub_2d();
    }
}
